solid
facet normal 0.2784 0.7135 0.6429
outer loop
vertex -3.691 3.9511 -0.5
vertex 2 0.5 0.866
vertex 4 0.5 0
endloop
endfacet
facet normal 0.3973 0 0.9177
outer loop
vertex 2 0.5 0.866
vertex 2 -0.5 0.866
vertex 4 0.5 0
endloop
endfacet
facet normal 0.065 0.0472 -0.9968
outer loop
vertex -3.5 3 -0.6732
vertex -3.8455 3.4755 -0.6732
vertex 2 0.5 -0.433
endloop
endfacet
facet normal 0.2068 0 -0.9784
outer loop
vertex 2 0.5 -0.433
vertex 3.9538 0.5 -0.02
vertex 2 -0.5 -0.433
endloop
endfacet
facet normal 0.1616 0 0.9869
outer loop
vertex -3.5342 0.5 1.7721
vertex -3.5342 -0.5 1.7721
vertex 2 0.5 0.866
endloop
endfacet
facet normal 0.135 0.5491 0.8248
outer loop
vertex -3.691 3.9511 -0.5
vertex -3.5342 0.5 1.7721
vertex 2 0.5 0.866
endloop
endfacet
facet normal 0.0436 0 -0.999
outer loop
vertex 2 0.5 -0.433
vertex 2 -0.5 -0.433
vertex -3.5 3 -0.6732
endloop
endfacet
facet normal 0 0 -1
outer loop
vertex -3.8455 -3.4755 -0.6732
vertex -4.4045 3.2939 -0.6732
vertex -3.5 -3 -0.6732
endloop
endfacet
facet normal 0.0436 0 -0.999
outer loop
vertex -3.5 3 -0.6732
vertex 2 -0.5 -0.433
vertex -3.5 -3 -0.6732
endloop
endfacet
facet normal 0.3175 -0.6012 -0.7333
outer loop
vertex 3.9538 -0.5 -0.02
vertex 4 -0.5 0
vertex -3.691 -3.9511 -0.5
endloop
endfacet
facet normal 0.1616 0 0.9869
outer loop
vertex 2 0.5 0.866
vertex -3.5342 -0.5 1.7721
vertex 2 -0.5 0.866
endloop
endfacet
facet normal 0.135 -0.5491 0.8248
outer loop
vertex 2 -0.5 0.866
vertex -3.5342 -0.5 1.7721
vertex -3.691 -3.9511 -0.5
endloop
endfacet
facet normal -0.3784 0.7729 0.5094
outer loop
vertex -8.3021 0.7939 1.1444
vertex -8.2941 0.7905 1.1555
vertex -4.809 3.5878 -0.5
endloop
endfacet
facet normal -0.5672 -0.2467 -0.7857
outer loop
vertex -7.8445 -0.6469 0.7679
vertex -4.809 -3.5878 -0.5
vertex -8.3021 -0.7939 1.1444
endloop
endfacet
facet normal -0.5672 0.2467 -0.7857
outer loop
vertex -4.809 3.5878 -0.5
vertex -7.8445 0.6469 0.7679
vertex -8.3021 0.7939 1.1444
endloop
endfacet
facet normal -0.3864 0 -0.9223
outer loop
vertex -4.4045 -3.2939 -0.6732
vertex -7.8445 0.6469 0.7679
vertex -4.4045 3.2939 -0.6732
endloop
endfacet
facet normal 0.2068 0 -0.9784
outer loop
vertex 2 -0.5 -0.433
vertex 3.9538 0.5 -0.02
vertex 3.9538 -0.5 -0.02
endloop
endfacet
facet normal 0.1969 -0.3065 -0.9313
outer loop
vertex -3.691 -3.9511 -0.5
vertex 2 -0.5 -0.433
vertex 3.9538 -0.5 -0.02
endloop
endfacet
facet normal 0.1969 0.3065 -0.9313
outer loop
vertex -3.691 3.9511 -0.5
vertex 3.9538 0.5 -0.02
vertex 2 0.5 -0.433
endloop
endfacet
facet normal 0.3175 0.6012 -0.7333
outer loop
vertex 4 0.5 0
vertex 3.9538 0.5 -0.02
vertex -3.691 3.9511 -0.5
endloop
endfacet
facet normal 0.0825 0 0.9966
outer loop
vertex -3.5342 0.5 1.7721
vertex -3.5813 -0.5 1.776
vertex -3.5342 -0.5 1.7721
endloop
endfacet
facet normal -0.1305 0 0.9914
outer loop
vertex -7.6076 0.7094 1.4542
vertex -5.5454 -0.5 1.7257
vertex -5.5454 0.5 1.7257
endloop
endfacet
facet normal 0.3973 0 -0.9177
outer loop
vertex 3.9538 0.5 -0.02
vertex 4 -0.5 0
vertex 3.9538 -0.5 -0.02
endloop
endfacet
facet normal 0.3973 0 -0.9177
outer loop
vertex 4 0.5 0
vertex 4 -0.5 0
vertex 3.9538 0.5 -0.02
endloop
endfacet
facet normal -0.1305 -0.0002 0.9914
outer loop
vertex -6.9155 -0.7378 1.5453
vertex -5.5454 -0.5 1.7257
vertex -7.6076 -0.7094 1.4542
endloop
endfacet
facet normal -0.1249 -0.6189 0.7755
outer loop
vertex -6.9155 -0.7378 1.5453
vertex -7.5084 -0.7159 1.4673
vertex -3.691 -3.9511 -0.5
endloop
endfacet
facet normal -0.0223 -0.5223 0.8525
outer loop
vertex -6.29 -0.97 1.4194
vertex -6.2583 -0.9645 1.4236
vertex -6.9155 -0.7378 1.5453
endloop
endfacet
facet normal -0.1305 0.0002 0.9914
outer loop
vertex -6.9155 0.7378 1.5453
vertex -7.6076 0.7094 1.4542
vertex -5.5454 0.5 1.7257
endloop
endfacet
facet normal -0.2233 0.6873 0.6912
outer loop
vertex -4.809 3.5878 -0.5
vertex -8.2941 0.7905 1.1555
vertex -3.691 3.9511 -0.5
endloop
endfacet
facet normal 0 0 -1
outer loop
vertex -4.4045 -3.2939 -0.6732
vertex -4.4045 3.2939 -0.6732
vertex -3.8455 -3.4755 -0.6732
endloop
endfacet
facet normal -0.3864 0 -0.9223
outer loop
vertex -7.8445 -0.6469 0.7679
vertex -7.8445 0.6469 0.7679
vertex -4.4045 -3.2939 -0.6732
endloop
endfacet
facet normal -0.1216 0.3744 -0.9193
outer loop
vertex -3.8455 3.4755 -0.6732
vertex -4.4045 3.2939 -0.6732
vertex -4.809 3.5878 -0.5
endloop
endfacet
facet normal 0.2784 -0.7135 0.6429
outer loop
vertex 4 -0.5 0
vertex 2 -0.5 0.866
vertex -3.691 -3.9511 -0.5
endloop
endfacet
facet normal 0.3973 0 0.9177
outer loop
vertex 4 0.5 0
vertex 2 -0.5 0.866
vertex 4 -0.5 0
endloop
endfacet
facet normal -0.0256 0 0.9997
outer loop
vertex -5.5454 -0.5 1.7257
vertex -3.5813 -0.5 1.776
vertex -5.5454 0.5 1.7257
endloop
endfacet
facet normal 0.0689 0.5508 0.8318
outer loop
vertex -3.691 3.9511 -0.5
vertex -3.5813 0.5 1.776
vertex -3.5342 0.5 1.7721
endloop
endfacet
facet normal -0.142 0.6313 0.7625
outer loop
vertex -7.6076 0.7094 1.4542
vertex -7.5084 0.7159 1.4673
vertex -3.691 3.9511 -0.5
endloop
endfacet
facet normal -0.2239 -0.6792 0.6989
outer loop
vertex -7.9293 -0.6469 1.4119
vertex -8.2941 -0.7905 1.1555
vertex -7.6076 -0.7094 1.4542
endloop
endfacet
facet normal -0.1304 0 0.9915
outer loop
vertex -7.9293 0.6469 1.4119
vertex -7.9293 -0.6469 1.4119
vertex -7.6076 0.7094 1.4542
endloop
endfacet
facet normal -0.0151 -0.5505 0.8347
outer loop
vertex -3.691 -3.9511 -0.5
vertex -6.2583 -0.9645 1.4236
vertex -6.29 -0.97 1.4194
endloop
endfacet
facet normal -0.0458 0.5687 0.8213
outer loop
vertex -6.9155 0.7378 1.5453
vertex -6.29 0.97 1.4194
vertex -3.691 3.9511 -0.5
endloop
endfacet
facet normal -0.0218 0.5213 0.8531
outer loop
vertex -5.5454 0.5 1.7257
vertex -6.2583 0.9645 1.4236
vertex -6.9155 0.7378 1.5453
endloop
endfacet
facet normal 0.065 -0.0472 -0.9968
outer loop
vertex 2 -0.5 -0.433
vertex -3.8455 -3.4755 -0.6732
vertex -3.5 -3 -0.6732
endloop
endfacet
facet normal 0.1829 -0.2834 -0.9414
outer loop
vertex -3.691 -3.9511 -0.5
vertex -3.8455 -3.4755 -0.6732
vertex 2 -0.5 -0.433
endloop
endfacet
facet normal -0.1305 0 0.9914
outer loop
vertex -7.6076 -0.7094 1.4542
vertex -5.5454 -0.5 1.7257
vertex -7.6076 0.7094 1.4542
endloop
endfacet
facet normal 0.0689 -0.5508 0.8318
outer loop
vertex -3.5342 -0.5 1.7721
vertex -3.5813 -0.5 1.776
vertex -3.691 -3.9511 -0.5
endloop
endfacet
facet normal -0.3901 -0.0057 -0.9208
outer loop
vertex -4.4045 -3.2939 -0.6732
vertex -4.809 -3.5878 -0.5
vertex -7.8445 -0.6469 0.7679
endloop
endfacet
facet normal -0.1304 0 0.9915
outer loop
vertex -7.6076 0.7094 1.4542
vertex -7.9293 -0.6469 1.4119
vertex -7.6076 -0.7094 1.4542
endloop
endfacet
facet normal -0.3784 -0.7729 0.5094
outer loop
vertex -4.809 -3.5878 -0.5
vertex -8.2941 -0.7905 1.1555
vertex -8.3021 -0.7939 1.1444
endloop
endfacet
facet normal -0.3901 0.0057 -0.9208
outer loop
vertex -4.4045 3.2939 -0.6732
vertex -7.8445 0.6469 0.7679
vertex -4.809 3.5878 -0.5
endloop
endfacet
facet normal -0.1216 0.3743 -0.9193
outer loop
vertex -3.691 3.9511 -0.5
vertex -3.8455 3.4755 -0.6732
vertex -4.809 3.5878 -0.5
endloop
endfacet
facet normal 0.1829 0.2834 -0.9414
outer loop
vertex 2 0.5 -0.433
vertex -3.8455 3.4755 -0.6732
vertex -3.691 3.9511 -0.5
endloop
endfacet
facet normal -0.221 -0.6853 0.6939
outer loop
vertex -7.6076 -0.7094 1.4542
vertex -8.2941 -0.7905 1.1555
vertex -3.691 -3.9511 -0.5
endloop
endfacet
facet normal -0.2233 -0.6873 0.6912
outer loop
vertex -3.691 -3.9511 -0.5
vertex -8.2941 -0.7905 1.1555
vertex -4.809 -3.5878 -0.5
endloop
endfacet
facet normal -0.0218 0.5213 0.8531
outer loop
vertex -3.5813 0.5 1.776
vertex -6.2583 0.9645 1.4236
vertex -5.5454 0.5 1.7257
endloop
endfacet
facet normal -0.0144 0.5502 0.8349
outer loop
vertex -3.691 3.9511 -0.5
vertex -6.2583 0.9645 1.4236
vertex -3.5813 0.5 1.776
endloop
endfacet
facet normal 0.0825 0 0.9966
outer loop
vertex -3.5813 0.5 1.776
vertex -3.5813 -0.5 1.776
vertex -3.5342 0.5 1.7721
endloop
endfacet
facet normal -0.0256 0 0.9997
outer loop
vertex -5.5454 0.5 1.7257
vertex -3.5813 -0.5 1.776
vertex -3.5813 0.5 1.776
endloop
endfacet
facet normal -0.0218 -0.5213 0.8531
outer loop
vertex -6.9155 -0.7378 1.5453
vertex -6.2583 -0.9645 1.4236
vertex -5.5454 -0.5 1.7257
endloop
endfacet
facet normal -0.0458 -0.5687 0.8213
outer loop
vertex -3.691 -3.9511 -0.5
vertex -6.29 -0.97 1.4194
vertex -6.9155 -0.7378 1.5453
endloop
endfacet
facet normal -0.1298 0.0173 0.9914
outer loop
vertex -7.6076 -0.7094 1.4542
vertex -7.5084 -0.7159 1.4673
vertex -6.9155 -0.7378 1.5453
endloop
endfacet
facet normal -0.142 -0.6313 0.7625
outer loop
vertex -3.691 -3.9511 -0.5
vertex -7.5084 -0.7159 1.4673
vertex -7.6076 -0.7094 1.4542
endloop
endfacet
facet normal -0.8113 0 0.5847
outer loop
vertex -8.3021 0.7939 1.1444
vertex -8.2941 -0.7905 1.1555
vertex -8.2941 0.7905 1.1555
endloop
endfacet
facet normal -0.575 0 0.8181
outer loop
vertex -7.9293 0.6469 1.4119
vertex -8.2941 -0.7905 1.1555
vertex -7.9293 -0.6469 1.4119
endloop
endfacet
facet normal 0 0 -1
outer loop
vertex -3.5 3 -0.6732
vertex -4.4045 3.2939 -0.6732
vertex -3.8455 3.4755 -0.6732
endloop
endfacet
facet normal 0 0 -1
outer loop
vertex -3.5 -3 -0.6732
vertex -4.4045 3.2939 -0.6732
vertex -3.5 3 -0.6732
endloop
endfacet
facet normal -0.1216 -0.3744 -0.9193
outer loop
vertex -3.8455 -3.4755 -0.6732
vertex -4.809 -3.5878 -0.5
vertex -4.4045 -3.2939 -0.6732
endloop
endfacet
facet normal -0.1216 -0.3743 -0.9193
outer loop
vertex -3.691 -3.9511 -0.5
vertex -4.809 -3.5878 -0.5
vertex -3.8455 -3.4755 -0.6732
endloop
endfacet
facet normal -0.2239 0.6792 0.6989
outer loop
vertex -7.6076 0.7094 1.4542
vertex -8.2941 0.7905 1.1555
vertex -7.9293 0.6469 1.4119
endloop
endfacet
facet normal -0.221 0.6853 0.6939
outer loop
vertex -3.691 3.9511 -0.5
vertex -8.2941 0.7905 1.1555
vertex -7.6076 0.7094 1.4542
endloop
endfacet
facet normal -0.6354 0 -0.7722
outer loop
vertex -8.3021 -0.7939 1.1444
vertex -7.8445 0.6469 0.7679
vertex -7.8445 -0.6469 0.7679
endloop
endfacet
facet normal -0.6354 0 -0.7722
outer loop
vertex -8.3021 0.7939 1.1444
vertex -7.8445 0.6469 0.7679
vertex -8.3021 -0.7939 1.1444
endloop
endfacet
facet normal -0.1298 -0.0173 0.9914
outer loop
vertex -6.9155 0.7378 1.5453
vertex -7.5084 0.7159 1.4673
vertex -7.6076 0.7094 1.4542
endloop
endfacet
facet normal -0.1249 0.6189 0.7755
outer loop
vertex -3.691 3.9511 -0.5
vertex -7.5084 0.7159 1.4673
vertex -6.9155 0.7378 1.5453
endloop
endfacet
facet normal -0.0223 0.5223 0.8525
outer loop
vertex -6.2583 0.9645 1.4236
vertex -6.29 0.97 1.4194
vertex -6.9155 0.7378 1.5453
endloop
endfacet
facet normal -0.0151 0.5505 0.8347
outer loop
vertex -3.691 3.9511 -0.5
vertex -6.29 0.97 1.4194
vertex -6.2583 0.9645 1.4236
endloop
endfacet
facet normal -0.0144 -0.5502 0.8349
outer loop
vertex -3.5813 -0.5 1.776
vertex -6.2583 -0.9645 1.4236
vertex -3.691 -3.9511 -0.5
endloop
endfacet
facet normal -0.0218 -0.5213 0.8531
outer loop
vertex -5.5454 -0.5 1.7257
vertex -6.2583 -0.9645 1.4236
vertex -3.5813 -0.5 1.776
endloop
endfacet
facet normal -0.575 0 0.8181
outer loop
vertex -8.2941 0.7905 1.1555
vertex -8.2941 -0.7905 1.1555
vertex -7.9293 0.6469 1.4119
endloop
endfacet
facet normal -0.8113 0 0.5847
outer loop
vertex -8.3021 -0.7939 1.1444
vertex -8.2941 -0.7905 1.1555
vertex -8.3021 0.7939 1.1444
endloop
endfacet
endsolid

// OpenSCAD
// file: ../lib/util.scad
fn1 = 32;
fn2 = 16;

module util_half_sphere(radius, fn=fn1) {
    difference() {
        sphere(radius, $fn=fn);
        translate([0,0,-(radius+radius/19)])
            cube(2*radius+radius/10, center=true);
    }
}

function gcd(a,b) = a == b ? a : a > b ? gcd(a-b, b) : gcd(a, b-a);

module util_saucer(length, width, height, fn=fn1) {
    rad = gcd(length,gcd(width,height));
    //rad = 10;
    scale([length/(2*rad), width/(2*rad), height/rad])
        util_half_sphere(rad, fn);
}

module util_half_cylinder(length, radius, inner_fn=fn2, outer_fn=fn1) {
    maxval = max(length, 2*radius);
    intersection() {
        difference() {
            rotate([0,90,0])
                translate([0,0,-(length/2 + length/20)])
                    cylinder(length+length/10, radius, radius, $fn=inner_fn);
            
            translate([0,0,(maxval/2 + maxval/19)])
                cube(maxval+maxval/10, center=true);
        }
        
        translate([0,0,-(radius+radius/20)])
            cylinder(radius + radius/10, length/2, length/2, $fn=outer_fn);
    }
}

module util_body(length, width, height, upper_height, fn=fn1) {
    rad = gcd(length, gcd(width, upper_height));
    
    scale(.995) scale([length/(2*rad), width/(2*rad), 1])
        util_half_cylinder(2*rad, height, outer_fn=fn);
}

module util_graded_cylinder(height, radius_start, radius_end, grades=1, fn=fn1) {
    height_grade = height / grades;
    radius_grade = (radius_start - radius_end) / (grades * grades);
    for (i = [0 : 1 : grades]) {
        translate([0,0,i*height_grade])
            cylinder(height_grade, 
                     radius_start - i*radius_grade * i,
                     radius_start - (i+1) * radius_grade * (i+1),
                     $fn = fn);
    }
}

module util_nacelle(length, width, height, curved=false, up=true, front_bulge=false) {
    rad = min(width, height/2);
    grads = curved ? 6 : 1;
    scale_factor = front_bulge ? 1.1 : 1;
    direction = up ? -1 : 1;
    difference() {
        scale([1, width/ (2*rad), height/rad])
            difference() {
                union() {
                    rotate([0,-90,0])
                        rotate(30)
                            util_graded_cylinder(length-rad, rad, rad/2, grads, 6);
                    scale(scale_factor) 
                        rotate([0,90,0]) rotate(90) sphere(rad, $fn=6);
                }
                
                translate([-length/2, 0, direction * (height/2 + height/19)])
                    cube([length+length, width+width, height+height/10], center=true);
            }
        
        translate([-length-(curved?length/3:0), 0, -length/3])
            rotate([0,-45,0])
                cube(length, center=true);
    }
}

module util_mirrored(v) {
    children();
    mirror(v) children();
}

module util_ring(outer, inner, height) {
    difference() {
        translate([0,0,-height/2])
            cylinder(height, outer, outer);
        translate([0,0,-(height/2 + height/19)])
            cylinder(height+height/10, inner, inner);
    }
}

module util_star(radius, thick, num, half=false) {
    angle = 360/num;
    offset = half? angle/2 : 0;
    for (i = [0: 1: num]) {
        rotate(i* angle + offset)
            translate([radius/2,0,0])
                cube([radius, thick, thick], center=true);
    }
}

module util_ring_star(radius, thick, num, inner, half=false) {
    outer=inner+thick;
    avg = (inner + outer)/2;
    union() {
        difference() {
            util_star(radius, thick, num, half);
            cylinder(2*thick, outer, outer, $fn=num, center=true);
        }
        util_ring(outer, inner, thick);
    }
}

module util_hangar_disk(height, lower, upper, num, fn=fn1) {
    difference() {
            cylinder(height, lower, upper, $fn=fn, center=true);
        difference() {
            scale([1,1,22])
                util_star(1.1*upper, height/20, num, half=true);
            scale(.95)
                cylinder(height, lower, upper, $fn=fn, center=true);
        }
    }
}

module util_hangar_form(length, width, height, num, inner=0) {
    l = 0.6* max(length, width);
    h = 2.5* height;
    thick = min(height/20,1);
    inner = inner == 0 ? l/3 : inner;
    difference() {
        children();
        scale([1,1,h/thick]) 
            util_ring_star(l, thick, num, inner, half=true);
    }
    scale(.95) children();
}

module util_nacelle_bar(span, height, width, thickness) {
    rad = (span*span/(8*height) + height/2);
    outer = rad + thickness/2;
    inner = rad - thickness/2;
    difference(){
        translate([0,0,outer])
            rotate([0,90,0])
                util_ring(outer, inner, width);
    
        translate([0,0,1.1*outer+height])
            cube(2.2*outer, center=true);
    }
}

module util_q_sphere(rad, quadrant, faces) {
    x_sign = quadrant == 1 ? 1 :
             quadrant == 2 ? -1 :
             quadrant == 3 ? -1 :
             quadrant == 4 ? 1 : 0;
    z_sign = quadrant == 1 ? 1 :
             quadrant == 2 ? 1 :
             quadrant == 3 ? -1 :
             quadrant == 4 ? -1 : 0;
    
    difference() {
        sphere(rad, $fn=faces);

        translate([x_sign*(-1.1*rad - .01),0,0])
        cube(2.2*rad, center=true);

        translate([0,0,z_sign*(-1.1*rad - .01)])
        cube(2.2*rad, center=true);
    }
}

module util_ovoid(front_rad, back_rad, width, upper_rad, lower_rad, faces=32) {
    half_width = width/2;
    largest=max(front_rad, back_rad, half_width, upper_rad, lower_rad);
    smallest=min(front_rad, back_rad, half_width, upper_rad, lower_rad);
    
    union() {
        scale([front_rad/smallest, half_width/smallest, upper_rad/smallest])
        util_q_sphere(smallest, 1, faces);
        
        scale([front_rad/smallest, half_width/smallest, lower_rad/smallest])
        util_q_sphere(smallest, 4, faces);
        
        scale([back_rad/smallest, half_width/smallest, lower_rad/smallest])
        util_q_sphere(smallest, 3, faces);
        
        scale([back_rad/smallest, half_width/smallest, upper_rad/smallest])
        util_q_sphere(smallest, 2, faces);
    }
}
// main file
use <../lib/util.scad>;


module fighter_cabin() {
    util_mirrored([0,1,0])
    translate([0,.5,0])
    util_ovoid(4,1,1,1,.5, faces=5);
}

module fighter() {
    hull() {
        fighter_cabin();

        translate([-7.5,0,1.25])
        rotate([0,-7.5,0])
        mirror([0,0,1]) 
        scale([1,1,.5])
        fighter_cabin();

        util_mirrored([0,1,0])
        translate([-4,3,-.5])
        util_ovoid(1, 1, 2, .2, .2, faces=5);
    }
}

fighter();
